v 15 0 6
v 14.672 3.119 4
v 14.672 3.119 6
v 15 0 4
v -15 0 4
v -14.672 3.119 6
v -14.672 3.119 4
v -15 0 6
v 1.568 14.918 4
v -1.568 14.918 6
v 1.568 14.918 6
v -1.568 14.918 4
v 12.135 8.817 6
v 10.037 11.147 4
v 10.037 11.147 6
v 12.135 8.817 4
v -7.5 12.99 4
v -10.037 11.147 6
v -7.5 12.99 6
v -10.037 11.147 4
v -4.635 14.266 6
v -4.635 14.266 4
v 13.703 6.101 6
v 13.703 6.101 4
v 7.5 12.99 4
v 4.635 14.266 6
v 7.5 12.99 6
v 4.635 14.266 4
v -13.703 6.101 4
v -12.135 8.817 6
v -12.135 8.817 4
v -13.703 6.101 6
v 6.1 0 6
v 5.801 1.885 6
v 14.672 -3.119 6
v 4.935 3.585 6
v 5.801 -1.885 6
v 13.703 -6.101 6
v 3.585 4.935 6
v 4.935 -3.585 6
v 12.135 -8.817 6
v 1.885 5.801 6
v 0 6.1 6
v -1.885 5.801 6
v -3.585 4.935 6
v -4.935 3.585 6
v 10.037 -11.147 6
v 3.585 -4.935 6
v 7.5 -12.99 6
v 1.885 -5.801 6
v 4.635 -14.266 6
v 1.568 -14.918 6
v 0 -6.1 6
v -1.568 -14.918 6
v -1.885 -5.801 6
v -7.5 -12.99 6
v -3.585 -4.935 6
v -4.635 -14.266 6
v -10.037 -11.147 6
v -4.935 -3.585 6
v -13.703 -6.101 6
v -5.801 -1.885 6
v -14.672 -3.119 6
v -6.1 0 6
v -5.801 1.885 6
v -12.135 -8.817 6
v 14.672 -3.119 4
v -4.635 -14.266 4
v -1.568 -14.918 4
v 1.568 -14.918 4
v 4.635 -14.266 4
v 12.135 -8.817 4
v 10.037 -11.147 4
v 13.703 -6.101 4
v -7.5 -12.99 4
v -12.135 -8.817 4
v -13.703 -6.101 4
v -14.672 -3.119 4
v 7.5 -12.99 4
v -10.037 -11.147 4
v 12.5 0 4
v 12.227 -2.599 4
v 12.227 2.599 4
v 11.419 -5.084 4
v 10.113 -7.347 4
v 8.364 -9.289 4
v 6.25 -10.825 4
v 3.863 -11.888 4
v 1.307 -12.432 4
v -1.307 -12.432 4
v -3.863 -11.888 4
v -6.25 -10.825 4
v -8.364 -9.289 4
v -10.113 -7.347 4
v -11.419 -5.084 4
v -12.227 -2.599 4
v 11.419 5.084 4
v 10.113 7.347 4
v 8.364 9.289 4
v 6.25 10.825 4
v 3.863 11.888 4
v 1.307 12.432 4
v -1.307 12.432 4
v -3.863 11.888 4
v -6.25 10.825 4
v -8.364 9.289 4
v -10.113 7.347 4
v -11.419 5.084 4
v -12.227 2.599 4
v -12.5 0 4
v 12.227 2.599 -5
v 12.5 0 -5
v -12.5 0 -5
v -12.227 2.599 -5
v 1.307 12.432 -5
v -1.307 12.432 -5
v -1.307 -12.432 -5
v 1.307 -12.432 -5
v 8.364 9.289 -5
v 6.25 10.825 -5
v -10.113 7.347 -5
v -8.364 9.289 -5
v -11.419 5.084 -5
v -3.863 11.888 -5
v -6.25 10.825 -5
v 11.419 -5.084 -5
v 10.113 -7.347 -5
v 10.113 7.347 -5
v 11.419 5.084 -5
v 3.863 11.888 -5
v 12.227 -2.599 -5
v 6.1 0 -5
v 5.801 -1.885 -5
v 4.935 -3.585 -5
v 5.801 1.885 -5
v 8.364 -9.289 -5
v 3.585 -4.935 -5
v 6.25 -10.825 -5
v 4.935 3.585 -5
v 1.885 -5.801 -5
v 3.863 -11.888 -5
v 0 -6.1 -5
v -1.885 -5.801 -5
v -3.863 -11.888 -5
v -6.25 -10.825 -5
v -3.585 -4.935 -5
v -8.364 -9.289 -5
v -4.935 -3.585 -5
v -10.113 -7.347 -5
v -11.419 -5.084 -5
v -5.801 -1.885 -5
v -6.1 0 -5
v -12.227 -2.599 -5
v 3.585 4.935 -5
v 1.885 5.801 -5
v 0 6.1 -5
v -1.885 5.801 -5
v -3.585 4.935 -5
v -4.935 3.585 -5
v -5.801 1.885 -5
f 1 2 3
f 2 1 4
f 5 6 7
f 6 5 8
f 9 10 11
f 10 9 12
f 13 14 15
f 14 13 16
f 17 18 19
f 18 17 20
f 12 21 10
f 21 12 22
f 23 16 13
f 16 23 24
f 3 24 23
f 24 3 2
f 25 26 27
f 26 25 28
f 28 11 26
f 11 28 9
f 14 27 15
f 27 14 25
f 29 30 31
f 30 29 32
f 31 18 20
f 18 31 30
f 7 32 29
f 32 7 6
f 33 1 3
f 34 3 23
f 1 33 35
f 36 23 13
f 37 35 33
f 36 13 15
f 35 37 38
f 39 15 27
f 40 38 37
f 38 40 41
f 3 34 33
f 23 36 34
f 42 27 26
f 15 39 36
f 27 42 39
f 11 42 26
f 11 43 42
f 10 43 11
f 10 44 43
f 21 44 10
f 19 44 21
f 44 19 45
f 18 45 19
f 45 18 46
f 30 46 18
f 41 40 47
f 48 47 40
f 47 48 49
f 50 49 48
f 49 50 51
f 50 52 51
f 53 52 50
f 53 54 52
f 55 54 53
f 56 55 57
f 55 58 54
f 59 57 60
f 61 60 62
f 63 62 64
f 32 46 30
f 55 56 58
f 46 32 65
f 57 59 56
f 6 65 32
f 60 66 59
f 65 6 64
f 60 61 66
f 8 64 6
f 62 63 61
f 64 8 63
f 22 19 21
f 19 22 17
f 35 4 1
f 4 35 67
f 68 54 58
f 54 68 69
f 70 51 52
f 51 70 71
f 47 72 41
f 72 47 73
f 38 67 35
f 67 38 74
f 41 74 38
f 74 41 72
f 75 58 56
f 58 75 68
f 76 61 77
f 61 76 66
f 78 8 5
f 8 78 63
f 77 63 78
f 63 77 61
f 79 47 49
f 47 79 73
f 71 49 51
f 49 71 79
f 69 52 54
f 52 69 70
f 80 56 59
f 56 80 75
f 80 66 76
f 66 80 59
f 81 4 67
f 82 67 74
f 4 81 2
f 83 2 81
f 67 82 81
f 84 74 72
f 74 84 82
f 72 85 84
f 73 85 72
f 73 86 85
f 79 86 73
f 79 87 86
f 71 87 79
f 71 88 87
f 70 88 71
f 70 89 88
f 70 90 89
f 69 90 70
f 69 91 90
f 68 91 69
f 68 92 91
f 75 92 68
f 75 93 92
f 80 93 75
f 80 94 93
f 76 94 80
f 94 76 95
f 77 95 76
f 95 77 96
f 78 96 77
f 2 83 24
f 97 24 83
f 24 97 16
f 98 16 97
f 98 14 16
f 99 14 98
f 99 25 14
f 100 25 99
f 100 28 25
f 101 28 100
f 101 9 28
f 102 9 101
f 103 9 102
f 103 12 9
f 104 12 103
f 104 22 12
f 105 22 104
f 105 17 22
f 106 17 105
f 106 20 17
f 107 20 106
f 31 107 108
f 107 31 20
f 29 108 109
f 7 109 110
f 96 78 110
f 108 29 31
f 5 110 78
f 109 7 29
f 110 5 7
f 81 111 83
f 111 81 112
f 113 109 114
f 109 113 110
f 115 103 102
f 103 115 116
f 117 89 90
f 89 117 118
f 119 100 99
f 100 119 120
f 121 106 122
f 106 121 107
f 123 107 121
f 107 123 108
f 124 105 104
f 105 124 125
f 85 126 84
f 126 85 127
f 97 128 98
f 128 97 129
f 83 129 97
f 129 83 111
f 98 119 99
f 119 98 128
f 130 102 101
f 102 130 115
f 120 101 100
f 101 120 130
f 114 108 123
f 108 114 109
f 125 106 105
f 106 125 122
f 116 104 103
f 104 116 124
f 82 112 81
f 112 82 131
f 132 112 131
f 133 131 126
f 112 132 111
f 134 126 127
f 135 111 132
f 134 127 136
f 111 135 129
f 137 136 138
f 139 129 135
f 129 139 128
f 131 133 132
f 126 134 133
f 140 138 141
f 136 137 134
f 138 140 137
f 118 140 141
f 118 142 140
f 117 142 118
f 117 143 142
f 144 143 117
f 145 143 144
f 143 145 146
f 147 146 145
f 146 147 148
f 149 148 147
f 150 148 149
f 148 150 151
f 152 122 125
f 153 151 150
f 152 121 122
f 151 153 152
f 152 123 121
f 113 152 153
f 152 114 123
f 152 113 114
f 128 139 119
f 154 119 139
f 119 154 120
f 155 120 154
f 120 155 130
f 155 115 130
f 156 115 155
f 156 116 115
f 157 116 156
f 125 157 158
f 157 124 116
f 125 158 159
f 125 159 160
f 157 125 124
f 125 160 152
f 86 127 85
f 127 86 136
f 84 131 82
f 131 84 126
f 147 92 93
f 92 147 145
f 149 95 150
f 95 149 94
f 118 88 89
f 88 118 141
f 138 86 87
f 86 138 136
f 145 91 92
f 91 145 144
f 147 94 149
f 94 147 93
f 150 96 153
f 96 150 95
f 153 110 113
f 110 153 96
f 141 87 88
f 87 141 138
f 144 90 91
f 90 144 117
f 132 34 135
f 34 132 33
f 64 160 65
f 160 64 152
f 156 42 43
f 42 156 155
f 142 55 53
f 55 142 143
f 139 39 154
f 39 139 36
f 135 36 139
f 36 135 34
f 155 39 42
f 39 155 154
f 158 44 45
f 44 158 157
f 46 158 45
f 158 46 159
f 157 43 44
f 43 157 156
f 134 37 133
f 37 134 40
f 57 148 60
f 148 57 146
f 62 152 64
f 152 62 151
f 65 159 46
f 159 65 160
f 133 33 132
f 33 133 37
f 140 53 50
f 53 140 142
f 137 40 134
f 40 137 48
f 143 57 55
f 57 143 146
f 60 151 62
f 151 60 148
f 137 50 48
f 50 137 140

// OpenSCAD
difference(){
union(){
translate([0,0,5])
cylinder(  2,   15, 15,true);
cylinder(  10,   12.5, 12.5,true);
}

cylinder(  12,   6.1, 6.1,true);
}
